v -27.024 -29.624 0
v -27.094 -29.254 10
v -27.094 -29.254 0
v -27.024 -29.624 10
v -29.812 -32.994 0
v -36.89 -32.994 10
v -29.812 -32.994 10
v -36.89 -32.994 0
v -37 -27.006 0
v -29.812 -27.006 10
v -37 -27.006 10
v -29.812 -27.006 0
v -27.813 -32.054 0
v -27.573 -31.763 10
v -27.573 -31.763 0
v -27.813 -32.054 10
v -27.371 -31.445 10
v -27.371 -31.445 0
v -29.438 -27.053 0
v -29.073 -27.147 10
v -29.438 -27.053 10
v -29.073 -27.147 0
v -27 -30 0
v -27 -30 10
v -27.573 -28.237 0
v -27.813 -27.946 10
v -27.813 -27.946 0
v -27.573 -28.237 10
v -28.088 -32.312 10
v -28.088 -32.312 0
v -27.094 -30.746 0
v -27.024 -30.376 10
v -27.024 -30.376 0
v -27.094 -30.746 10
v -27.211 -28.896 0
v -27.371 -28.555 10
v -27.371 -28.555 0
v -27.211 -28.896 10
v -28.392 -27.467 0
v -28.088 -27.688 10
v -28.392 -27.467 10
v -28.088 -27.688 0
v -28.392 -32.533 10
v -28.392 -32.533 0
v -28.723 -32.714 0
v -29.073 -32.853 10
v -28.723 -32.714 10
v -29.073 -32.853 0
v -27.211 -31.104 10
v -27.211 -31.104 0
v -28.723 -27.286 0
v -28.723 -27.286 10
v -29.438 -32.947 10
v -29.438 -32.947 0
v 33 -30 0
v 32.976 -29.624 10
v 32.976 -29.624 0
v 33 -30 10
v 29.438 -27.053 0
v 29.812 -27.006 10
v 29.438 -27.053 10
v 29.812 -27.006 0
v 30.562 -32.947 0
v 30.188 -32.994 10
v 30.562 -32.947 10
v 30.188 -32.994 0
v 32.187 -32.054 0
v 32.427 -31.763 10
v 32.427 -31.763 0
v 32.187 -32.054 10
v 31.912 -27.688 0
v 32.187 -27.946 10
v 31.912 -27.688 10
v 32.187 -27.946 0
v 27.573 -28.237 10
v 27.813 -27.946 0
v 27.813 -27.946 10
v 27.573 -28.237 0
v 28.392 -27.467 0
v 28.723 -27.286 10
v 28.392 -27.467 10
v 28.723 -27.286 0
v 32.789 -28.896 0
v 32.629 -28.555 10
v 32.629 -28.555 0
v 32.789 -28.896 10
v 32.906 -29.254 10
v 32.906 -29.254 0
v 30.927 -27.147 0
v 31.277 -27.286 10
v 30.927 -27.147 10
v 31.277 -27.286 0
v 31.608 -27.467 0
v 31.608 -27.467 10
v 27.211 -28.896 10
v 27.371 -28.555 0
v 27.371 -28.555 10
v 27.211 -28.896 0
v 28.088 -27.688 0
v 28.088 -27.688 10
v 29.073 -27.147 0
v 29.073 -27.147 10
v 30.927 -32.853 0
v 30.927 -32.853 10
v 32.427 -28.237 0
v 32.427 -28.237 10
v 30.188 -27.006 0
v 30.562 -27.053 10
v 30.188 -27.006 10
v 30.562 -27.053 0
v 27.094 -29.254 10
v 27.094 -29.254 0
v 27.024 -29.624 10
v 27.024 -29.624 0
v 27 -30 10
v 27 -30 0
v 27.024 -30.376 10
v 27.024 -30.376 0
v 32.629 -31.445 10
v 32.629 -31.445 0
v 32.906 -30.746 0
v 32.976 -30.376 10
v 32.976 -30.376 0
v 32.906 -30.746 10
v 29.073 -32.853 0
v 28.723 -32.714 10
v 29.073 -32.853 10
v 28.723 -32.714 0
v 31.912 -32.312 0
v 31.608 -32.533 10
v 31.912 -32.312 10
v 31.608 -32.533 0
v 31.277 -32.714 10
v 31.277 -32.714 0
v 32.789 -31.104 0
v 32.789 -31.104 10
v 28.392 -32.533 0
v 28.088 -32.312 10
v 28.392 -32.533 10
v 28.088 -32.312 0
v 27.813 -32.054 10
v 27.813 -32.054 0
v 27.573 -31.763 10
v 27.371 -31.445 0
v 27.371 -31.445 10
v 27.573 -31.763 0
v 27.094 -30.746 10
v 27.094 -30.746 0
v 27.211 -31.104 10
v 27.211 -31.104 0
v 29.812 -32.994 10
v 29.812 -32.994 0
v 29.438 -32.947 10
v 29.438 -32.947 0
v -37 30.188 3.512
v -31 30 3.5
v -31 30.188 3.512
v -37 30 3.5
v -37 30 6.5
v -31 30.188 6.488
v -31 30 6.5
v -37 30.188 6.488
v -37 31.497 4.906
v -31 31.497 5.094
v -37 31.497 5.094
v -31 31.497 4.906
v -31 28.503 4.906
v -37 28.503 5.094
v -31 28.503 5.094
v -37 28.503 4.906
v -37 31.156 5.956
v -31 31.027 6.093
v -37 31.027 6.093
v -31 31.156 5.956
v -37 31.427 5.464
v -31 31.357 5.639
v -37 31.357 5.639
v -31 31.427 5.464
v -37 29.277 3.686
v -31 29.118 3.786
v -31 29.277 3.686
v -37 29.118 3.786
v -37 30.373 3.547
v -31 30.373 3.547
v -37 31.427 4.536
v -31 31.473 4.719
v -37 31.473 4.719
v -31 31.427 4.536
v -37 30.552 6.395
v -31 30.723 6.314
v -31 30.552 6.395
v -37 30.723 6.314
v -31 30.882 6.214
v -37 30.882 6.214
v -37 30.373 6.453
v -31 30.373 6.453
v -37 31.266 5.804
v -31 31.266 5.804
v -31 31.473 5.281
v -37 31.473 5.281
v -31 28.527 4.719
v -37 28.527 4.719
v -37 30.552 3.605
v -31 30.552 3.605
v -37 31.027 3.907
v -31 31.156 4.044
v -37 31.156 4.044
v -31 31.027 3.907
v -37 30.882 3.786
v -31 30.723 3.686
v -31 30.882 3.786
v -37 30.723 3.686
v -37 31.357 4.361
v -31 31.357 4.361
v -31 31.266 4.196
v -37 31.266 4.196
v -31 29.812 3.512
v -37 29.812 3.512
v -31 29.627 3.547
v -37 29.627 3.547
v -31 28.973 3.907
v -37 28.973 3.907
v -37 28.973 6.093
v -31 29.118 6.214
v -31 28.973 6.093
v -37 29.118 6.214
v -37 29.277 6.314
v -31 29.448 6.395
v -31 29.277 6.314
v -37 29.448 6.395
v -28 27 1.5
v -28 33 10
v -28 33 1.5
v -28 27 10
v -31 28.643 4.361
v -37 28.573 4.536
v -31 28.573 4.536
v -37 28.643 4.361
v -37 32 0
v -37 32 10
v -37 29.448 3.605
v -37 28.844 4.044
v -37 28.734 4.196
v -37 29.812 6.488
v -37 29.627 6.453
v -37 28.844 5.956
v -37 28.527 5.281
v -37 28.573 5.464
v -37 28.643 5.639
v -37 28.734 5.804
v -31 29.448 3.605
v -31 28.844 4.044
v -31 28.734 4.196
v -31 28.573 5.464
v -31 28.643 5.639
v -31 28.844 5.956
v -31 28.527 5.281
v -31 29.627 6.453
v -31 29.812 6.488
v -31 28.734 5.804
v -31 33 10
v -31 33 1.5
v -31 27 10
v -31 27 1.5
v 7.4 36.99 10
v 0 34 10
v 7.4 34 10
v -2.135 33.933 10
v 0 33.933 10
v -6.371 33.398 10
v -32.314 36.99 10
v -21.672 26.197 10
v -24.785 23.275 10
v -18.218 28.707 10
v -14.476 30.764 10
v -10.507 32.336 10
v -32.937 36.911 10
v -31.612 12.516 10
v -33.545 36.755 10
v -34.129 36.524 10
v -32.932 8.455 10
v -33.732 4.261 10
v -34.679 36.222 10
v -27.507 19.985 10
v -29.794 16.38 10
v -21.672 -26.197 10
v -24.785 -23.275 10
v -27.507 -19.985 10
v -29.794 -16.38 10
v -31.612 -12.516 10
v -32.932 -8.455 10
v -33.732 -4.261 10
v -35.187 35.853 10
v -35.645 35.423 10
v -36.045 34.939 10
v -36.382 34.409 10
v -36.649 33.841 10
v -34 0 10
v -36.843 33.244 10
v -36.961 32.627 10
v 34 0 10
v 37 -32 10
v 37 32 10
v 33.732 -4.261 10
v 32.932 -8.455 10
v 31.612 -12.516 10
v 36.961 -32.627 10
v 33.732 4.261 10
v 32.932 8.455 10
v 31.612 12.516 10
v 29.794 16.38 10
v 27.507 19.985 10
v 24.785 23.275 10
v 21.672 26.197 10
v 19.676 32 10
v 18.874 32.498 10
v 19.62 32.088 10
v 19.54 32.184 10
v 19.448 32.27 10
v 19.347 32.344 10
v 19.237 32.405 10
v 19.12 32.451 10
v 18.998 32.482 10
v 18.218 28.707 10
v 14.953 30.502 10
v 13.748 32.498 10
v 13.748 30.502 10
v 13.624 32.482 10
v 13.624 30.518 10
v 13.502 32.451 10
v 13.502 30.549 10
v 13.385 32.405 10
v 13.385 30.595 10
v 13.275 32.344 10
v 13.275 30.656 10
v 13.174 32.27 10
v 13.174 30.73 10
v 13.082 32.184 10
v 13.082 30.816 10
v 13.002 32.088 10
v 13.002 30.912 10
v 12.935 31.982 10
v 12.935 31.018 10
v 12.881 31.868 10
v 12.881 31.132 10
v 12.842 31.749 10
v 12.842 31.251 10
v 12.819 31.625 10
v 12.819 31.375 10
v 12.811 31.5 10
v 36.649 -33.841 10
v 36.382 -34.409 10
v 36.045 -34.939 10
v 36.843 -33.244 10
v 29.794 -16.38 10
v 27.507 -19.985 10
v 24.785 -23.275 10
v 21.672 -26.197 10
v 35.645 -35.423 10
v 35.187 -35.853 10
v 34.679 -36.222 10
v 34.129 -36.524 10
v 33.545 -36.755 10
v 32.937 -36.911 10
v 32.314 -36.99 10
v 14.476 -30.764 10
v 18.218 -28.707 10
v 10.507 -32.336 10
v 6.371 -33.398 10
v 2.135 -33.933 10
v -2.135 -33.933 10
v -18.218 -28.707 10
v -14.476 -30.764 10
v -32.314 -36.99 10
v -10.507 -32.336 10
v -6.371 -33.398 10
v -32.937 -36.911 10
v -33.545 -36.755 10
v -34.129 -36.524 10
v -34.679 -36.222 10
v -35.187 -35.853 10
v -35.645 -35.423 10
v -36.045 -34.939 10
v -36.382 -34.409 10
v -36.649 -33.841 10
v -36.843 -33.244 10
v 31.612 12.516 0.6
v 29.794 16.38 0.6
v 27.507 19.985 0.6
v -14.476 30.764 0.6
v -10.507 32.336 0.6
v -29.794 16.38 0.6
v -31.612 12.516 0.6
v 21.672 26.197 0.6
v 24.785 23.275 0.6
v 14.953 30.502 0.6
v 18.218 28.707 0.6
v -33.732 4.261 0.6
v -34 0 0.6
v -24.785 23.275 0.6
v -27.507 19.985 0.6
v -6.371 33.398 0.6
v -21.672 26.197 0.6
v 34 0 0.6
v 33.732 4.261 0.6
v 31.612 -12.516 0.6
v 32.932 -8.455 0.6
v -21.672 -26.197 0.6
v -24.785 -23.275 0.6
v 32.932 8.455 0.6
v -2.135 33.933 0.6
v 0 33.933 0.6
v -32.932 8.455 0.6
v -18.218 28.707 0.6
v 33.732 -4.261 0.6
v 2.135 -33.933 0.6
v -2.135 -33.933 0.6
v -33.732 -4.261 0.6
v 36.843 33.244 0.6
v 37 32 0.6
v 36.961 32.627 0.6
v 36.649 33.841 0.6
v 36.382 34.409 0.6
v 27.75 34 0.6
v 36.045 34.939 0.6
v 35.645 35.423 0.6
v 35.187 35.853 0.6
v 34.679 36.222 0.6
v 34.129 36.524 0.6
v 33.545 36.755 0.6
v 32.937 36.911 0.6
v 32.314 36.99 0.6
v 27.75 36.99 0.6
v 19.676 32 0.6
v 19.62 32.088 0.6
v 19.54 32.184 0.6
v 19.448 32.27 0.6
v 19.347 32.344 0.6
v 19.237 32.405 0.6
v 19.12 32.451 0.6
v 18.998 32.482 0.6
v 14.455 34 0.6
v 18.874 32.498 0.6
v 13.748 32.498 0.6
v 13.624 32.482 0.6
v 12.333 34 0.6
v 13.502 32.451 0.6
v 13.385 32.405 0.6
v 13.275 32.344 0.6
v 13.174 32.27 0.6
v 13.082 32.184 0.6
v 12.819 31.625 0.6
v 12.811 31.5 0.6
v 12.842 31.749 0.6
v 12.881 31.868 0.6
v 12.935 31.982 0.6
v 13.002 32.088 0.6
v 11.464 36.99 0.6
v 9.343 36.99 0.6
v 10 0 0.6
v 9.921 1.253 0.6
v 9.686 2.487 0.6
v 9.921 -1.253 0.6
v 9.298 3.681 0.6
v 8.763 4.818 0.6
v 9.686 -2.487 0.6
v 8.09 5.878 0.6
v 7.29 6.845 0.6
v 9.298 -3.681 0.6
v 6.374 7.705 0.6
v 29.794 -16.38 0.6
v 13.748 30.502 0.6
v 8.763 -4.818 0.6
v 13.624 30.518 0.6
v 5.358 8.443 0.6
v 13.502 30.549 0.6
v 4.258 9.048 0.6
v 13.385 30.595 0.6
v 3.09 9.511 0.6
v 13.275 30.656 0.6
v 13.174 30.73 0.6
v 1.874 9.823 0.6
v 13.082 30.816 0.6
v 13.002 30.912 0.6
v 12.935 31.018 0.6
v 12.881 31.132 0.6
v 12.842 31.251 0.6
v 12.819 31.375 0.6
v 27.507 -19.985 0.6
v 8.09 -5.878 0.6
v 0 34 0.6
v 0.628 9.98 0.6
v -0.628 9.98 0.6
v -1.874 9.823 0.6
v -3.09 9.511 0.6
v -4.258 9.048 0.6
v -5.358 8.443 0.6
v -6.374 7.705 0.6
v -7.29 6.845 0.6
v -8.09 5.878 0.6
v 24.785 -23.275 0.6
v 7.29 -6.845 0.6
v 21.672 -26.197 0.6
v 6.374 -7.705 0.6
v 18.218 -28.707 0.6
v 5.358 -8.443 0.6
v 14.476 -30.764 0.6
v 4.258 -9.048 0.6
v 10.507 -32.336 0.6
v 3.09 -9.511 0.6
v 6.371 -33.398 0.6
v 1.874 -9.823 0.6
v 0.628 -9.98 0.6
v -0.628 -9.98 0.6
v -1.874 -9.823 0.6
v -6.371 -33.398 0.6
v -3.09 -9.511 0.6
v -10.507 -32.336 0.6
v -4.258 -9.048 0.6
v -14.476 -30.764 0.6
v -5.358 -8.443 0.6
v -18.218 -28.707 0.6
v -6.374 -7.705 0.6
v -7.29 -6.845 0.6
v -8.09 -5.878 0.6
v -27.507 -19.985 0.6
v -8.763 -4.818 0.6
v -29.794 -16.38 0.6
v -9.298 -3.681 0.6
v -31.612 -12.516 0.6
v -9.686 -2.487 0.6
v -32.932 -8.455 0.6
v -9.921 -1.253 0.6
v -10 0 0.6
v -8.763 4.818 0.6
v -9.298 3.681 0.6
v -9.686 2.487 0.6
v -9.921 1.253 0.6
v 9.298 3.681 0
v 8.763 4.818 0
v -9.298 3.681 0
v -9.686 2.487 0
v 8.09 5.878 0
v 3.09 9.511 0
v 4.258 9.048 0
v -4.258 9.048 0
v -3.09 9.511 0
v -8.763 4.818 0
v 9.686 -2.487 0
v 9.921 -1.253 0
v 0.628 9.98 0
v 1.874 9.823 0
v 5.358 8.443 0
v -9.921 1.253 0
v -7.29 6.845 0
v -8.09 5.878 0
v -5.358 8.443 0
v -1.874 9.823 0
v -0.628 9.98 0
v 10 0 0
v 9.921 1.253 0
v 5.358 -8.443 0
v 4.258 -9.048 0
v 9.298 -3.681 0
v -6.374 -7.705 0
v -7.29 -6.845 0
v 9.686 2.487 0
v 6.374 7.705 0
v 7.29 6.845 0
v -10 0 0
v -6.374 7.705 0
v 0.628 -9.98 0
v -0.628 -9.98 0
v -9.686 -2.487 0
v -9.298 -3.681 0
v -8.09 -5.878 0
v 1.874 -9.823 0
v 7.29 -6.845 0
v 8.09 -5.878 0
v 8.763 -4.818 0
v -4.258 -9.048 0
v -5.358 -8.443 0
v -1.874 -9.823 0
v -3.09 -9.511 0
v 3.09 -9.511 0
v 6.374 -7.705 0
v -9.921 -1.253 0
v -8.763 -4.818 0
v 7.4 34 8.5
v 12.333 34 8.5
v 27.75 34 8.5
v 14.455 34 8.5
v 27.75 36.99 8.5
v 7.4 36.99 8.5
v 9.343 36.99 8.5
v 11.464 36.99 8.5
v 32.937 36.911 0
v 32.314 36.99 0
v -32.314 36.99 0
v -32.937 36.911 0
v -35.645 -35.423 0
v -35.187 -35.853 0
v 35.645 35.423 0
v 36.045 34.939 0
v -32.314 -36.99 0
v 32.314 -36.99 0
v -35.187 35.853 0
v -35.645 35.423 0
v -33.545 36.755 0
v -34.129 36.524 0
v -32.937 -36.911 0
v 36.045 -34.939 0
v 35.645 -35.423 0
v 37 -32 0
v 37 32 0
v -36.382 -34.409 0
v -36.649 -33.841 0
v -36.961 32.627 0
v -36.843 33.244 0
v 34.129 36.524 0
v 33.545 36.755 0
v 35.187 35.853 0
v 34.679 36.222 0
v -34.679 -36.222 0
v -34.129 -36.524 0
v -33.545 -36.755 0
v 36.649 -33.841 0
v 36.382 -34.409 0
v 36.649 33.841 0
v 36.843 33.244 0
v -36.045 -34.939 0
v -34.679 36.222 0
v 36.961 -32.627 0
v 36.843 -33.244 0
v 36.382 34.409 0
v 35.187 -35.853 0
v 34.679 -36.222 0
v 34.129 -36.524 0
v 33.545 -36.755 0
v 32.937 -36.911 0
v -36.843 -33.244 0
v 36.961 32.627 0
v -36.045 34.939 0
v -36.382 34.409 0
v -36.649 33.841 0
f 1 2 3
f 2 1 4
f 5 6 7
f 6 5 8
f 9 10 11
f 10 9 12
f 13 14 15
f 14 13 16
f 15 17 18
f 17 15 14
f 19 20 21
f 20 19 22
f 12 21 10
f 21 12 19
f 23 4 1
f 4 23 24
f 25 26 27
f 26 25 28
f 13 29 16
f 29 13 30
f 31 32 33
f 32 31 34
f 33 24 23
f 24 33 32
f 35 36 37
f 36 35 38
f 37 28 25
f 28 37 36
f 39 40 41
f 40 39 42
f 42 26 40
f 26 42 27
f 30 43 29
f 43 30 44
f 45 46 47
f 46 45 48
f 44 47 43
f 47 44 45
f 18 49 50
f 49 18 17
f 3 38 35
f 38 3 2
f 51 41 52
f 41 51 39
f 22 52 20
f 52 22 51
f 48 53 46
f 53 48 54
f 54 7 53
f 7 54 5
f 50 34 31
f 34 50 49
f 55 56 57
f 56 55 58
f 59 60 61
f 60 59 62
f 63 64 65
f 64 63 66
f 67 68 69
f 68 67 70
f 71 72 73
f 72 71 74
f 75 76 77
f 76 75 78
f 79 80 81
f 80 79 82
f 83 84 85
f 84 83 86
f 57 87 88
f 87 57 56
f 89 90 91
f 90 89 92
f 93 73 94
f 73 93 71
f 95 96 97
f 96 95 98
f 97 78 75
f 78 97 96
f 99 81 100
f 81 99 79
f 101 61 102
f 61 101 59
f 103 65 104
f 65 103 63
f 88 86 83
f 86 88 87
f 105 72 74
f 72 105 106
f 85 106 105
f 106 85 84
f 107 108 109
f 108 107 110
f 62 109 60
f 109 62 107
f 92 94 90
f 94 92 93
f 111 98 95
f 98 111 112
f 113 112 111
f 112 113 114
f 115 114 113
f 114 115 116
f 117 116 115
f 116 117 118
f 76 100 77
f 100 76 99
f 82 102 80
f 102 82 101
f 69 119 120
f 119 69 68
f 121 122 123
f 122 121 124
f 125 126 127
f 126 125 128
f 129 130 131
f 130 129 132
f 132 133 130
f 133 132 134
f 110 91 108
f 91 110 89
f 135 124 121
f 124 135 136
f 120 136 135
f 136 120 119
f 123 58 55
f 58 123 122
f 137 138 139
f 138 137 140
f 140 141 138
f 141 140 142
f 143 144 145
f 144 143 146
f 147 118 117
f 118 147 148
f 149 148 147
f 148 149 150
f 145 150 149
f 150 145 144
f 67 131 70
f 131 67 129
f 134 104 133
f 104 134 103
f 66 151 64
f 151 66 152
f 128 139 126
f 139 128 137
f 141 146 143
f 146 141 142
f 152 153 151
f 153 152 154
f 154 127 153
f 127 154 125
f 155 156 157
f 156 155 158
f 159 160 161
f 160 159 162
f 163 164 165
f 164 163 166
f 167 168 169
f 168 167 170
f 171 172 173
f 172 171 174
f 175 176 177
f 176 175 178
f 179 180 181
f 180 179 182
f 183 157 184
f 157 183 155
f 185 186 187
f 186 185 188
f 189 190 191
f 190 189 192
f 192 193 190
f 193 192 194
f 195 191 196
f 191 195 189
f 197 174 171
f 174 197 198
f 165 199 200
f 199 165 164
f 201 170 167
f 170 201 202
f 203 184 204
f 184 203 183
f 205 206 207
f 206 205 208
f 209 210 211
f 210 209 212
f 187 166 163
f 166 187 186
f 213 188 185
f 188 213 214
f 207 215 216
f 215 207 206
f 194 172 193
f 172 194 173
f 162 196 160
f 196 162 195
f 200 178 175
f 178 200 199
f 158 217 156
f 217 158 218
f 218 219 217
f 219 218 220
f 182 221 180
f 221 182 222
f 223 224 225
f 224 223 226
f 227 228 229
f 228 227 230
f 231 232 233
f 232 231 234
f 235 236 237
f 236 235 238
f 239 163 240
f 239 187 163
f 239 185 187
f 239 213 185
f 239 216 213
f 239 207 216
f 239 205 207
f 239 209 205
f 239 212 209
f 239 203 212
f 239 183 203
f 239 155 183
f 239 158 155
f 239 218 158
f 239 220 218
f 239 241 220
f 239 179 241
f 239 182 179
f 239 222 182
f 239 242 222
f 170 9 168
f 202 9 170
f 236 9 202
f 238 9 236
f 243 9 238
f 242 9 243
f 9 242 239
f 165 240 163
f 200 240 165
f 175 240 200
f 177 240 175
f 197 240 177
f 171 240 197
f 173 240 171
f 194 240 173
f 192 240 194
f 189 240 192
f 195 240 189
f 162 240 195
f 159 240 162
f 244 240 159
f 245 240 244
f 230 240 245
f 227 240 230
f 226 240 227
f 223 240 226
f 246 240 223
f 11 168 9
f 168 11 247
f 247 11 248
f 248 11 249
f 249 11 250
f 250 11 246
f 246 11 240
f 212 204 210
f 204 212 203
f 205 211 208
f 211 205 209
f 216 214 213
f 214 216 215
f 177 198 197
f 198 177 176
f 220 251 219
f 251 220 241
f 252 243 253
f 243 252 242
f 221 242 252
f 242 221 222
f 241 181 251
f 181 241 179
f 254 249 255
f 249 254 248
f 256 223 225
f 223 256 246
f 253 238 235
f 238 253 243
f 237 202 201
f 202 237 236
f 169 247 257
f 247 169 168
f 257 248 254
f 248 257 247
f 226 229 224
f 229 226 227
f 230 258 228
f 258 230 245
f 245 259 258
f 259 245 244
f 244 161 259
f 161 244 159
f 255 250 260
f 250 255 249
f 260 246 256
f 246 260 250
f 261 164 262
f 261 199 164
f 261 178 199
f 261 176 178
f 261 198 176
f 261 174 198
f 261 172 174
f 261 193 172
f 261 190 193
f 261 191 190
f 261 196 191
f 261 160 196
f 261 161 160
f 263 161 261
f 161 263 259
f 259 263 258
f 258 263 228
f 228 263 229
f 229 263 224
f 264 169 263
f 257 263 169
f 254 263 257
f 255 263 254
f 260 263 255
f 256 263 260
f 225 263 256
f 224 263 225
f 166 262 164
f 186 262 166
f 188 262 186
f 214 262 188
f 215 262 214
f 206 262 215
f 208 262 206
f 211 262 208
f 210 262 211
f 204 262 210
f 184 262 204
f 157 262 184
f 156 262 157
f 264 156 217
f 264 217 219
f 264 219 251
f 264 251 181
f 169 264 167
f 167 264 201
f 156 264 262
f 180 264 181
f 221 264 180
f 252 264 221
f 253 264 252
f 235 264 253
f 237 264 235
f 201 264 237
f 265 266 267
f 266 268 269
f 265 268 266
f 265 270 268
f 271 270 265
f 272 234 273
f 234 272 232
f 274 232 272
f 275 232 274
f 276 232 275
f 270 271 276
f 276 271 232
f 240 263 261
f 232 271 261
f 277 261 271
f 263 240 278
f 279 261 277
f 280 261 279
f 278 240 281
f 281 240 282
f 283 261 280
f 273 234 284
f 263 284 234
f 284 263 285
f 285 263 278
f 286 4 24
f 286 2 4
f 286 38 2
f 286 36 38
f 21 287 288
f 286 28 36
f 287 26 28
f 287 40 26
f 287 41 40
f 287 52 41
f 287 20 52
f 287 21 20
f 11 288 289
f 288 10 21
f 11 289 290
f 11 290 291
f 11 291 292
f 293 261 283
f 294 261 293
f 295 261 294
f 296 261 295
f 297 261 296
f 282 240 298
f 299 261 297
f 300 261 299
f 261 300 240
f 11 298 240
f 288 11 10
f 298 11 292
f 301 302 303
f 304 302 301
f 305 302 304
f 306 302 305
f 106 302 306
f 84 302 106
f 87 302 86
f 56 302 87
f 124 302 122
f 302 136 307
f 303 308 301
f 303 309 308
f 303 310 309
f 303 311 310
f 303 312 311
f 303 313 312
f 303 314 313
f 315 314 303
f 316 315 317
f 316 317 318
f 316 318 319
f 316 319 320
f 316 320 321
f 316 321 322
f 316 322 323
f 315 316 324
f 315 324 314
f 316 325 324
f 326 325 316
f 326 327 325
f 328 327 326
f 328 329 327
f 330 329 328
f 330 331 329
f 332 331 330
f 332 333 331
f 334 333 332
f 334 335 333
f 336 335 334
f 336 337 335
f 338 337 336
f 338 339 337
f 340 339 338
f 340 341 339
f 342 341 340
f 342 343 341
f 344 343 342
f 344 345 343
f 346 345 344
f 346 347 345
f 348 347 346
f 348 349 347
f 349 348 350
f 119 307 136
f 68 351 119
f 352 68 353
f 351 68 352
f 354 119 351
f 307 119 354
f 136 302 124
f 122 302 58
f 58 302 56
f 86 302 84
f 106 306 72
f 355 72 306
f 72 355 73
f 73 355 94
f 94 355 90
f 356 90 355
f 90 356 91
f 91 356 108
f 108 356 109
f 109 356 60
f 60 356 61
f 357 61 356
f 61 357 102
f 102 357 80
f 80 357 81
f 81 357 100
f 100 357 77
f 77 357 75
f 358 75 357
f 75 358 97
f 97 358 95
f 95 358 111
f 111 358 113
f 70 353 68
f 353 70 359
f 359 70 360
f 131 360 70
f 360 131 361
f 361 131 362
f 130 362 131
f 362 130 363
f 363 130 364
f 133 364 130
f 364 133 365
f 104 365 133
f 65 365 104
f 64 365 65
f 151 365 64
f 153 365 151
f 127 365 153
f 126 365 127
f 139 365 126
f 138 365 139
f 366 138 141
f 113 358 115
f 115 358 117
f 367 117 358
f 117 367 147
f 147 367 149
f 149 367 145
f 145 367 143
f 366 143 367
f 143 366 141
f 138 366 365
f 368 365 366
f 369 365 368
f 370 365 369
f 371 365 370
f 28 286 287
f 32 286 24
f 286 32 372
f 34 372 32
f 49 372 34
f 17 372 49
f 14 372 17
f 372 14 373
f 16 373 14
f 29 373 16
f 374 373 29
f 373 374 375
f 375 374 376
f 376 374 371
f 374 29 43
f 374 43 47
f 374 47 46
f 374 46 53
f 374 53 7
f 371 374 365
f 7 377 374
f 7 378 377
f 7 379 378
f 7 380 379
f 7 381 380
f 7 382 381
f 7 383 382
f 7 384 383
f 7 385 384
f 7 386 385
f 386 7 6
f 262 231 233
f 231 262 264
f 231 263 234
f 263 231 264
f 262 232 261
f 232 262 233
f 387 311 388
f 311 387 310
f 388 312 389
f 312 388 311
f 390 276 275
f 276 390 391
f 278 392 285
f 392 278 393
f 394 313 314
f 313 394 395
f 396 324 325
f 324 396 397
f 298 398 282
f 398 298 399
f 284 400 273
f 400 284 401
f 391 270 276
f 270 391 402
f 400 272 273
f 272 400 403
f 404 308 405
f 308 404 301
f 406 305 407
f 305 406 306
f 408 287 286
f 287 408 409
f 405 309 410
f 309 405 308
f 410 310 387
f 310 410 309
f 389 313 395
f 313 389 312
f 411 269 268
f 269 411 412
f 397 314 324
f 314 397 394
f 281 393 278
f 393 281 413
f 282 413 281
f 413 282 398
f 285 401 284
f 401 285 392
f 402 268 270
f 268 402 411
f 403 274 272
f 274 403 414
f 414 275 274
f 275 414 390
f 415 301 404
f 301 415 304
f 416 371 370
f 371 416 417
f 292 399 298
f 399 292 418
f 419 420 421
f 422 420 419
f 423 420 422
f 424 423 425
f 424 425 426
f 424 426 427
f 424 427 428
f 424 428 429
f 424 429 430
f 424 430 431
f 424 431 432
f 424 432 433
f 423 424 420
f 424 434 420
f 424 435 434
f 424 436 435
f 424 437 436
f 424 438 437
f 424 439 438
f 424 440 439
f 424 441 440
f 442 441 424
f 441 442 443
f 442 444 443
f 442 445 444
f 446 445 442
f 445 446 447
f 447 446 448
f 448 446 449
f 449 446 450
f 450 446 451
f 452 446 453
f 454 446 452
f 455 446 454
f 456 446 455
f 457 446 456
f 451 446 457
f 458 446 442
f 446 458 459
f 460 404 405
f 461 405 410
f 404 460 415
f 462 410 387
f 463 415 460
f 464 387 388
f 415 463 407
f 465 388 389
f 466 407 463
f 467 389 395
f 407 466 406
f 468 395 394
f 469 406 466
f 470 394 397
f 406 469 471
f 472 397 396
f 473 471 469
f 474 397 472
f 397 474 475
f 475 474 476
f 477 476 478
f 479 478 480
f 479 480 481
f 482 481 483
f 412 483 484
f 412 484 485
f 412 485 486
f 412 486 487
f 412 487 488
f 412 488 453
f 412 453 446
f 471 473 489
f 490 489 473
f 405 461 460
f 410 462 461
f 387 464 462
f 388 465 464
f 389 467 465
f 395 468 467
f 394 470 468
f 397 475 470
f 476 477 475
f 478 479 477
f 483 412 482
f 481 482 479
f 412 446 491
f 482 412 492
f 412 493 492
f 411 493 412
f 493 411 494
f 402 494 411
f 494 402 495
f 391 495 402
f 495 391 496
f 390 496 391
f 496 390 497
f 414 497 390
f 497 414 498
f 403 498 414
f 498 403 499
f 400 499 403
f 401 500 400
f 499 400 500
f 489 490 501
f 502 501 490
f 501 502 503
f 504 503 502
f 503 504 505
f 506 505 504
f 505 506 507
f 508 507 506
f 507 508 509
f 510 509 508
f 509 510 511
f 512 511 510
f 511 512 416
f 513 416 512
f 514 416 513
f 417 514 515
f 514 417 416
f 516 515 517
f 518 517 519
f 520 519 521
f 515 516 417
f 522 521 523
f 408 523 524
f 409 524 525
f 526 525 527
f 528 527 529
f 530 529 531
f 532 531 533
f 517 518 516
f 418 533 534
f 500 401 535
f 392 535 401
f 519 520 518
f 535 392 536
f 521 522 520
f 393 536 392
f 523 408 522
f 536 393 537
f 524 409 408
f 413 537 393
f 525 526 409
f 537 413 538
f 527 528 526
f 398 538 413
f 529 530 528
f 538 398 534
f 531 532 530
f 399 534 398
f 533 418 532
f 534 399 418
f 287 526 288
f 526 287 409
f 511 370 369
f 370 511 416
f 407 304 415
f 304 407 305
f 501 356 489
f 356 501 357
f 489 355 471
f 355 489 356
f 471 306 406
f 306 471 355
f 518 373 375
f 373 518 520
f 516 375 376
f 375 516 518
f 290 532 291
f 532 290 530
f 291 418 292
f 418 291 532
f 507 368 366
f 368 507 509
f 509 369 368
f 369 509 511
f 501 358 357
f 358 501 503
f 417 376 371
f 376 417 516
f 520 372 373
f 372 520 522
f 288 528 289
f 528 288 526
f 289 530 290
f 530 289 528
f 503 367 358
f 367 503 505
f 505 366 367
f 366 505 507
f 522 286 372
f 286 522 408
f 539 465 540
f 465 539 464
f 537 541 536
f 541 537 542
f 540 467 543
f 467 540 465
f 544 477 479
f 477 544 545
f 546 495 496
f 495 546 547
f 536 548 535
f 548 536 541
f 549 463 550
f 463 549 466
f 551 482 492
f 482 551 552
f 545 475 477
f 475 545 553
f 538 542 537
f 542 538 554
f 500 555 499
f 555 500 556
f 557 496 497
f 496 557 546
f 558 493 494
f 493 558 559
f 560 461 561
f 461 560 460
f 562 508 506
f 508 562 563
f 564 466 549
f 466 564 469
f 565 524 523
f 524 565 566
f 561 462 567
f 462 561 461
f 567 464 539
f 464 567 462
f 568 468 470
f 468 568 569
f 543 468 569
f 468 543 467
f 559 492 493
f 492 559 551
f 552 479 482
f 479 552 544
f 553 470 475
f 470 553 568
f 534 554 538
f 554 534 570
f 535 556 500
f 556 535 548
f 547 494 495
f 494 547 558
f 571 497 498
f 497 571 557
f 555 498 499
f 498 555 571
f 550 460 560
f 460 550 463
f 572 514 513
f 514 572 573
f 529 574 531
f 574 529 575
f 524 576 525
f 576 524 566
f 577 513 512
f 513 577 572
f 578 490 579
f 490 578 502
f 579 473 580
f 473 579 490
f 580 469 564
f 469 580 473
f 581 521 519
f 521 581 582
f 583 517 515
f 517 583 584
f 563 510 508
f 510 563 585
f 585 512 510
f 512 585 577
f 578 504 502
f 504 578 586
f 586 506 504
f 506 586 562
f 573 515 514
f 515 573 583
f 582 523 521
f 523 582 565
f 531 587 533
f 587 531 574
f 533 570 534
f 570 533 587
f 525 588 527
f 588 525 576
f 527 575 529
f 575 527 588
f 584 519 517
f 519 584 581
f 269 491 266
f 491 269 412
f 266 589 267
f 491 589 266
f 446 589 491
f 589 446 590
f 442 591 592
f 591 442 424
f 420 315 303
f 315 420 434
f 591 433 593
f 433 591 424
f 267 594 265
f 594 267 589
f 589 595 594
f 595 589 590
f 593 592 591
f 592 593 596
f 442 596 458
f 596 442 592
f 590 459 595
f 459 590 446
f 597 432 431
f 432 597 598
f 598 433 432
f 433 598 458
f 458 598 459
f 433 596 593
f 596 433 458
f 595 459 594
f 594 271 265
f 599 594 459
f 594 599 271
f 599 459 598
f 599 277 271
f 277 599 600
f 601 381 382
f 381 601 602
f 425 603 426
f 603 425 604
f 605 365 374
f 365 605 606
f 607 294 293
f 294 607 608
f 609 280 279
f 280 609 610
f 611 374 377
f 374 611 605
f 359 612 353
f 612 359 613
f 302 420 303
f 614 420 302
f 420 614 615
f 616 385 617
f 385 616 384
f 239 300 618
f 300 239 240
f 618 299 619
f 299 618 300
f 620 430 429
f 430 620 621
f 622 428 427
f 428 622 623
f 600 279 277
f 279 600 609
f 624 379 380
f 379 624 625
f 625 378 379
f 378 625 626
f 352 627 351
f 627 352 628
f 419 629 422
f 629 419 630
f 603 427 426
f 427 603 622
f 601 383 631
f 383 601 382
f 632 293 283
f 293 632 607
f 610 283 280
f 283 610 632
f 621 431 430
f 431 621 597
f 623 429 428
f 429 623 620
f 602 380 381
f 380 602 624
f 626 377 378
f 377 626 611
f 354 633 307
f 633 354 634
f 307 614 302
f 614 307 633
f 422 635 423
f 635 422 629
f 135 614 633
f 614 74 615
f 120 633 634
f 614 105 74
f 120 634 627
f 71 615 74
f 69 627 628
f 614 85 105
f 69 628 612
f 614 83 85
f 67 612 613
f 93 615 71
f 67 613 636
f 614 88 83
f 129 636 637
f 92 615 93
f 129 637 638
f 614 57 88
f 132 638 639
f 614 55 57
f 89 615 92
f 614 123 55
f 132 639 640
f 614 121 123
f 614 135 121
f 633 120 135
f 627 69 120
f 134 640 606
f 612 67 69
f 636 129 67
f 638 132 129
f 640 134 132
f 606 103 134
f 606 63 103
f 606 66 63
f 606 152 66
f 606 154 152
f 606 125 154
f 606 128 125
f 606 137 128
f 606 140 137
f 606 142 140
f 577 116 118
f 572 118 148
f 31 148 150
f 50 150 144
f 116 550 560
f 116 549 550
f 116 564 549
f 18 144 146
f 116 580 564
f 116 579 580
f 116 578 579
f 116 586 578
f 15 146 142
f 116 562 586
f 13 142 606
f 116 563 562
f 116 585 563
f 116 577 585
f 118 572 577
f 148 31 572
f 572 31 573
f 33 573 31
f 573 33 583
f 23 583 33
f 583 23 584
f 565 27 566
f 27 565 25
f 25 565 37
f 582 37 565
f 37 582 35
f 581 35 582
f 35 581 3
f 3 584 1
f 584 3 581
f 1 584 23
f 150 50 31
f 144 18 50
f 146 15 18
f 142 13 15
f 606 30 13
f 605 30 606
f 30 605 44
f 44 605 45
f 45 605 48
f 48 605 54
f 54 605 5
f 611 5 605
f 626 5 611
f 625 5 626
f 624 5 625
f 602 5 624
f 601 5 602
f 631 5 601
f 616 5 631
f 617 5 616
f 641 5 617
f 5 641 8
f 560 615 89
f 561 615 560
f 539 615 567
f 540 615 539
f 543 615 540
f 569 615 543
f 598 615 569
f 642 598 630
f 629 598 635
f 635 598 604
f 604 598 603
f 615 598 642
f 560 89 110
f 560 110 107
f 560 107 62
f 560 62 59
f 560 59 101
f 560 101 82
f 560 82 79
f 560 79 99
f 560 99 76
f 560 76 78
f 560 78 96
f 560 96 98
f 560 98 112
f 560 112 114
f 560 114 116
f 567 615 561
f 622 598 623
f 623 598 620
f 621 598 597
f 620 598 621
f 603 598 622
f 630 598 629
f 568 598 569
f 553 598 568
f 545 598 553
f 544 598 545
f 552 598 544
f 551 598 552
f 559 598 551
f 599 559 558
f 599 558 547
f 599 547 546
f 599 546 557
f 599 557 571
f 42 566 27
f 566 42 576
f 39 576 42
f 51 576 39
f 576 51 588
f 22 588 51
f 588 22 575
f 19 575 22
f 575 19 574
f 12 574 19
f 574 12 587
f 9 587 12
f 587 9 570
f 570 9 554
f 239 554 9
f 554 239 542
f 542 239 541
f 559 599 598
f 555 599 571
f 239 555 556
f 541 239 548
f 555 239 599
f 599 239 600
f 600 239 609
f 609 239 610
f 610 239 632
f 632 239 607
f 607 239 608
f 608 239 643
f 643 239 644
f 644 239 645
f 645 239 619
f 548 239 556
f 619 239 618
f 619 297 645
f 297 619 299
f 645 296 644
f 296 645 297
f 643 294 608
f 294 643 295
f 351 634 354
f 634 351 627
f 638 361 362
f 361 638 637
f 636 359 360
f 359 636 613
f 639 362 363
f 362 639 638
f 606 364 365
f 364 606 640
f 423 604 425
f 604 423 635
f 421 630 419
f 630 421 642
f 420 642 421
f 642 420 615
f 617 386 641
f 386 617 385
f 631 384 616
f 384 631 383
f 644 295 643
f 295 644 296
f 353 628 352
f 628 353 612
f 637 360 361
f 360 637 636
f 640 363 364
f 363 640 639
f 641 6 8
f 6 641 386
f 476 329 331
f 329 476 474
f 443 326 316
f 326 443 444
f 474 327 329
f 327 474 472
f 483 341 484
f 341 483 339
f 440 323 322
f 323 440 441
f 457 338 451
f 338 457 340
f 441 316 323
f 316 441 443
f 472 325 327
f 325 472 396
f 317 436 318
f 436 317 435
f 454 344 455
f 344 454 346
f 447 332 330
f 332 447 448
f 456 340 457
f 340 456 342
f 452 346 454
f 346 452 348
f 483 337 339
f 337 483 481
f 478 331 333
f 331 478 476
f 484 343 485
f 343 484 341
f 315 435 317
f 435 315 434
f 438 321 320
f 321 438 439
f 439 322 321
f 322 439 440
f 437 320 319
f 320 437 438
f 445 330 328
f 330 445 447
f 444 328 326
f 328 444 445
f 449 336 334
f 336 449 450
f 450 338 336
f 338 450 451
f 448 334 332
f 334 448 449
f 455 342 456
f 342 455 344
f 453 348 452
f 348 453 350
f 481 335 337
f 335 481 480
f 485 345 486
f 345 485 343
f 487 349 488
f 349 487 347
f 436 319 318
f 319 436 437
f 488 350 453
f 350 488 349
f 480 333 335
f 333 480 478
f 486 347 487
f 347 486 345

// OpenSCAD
$fn = 50;


union() {
	difference() {
		union() {
			translate(v = [0, 0, 0]) {
				rotate(a = [0, 0, 0]) {
					hull() {
						translate(v = [-32.0000000000, 32.0000000000, 0]) {
							rotate(a = [0, 0, 0]) {
								translate(v = [0, 0, 0]) {
									rotate(a = [0, 0, 0]) {
										cylinder(h = 10, r = 5);
									}
								}
							}
						}
						translate(v = [32.0000000000, 32.0000000000, 0]) {
							rotate(a = [0, 0, 0]) {
								translate(v = [0, 0, 0]) {
									rotate(a = [0, 0, 0]) {
										cylinder(h = 10, r = 5);
									}
								}
							}
						}
						translate(v = [-32.0000000000, -32.0000000000, 0]) {
							rotate(a = [0, 0, 0]) {
								translate(v = [0, 0, 0]) {
									rotate(a = [0, 0, 0]) {
										cylinder(h = 10, r = 5);
									}
								}
							}
						}
						translate(v = [32.0000000000, -32.0000000000, 0]) {
							rotate(a = [0, 0, 0]) {
								translate(v = [0, 0, 0]) {
									rotate(a = [0, 0, 0]) {
										cylinder(h = 10, r = 5);
									}
								}
							}
						}
					}
				}
			}
		}
		union() {
			translate(v = [-37.5000000000, -30.0000000000, -125]) {
				rotate(a = [0, 0, 0]) {
					hull() {
						translate(v = [7.5000000000, 0, 0]) {
							rotate(a = [0, 0, 0]) {
								translate(v = [0, 0, 0]) {
									rotate(a = [0, 0, 0]) {
										cylinder(h = 250, r = 3.0000000000);
									}
								}
							}
						}
						translate(v = [-7.5000000000, 0, 0]) {
							rotate(a = [0, 0, 0]) {
								translate(v = [0, 0, 0]) {
									rotate(a = [0, 0, 0]) {
										cylinder(h = 250, r = 3.0000000000);
									}
								}
							}
						}
					}
				}
			}
			translate(v = [30.0000000000, -30.0000000000, -125.0000000000]) {
				rotate(a = [0, 0, 0]) {
					cylinder(h = 250, r = 3.0000000000);
				}
			}
			translate(v = [-37.0000000000, 30.0000000000, 5.0000000000]) {
				rotate(a = [0, 90, 0]) {
					cylinder(h = 9, r = 1.5000000000);
				}
			}
			translate(v = [-31.0000000000, 27.0000000000, 1.5000000000]) {
				rotate(a = [0, 0, 0]) {
					cube(size = [3, 6, 8.5000000000]);
				}
			}
			translate(v = [0, 0, 0.6000000000]) {
				rotate(a = [0, 0, 0]) {
					cylinder(h = 12.4000000000, r = 34.0000000000);
				}
			}
			translate(v = [0, 0, -5.0000000000]) {
				rotate(a = [0, 0, 0]) {
					cylinder(h = 10, r = 10.0000000000);
				}
			}
			translate(v = [0.0000000000, 32.0000000000, 0.6000000000]) {
				rotate(a = [0, 0, 0]) {
					cube(size = [37.0000000000, 2, 12.4000000000]);
				}
			}
			translate(v = [27.7500000000, 32.0000000000, 0.6000000000]) {
				rotate(a = [0, 0, 0]) {
					cube(size = [9.2500000000, 5, 12.4000000000]);
				}
			}
			translate(v = [7.4000000000, 32.0000000000, 8.5000000000]) {
				rotate(a = [0, 0, 0]) {
					cube(size = [29.6000000000, 5, 1.5000000000]);
				}
			}
			translate(v = [8.5833333333, 37.7500000000, 0.6000000000]) {
				rotate(a = [0, 0, -45]) {
					cube(size = [7.5000000000, 1.5000000000, 12.4000000000]);
				}
			}
			translate(v = [7.0610000000, 30.5000000000, 0.6000000000]) {
				rotate(a = [0, 0, 0]) {
					cube(size = [7.5000000000, 2, 9.4000000000]);
				}
			}
		}
	}
	union() {
		translate(v = [16.3110000000, 31.5000000000, 0]) {
			rotate(a = [0, 0, 0]) {
				hull() {
					translate(v = [2.5000000000, 0, 0]) {
						rotate(a = [0, 0, 0]) {
							translate(v = [0, 0, 0]) {
								rotate(a = [0, 0, 0]) {
									cylinder(h = 10, r = 1.0000000000);
								}
							}
						}
					}
					translate(v = [-2.5000000000, 0, 0]) {
						rotate(a = [0, 0, 0]) {
							translate(v = [0, 0, 0]) {
								rotate(a = [0, 0, 0]) {
									cylinder(h = 10, r = 1.0000000000);
								}
							}
						}
					}
				}
			}
		}
	}
}
